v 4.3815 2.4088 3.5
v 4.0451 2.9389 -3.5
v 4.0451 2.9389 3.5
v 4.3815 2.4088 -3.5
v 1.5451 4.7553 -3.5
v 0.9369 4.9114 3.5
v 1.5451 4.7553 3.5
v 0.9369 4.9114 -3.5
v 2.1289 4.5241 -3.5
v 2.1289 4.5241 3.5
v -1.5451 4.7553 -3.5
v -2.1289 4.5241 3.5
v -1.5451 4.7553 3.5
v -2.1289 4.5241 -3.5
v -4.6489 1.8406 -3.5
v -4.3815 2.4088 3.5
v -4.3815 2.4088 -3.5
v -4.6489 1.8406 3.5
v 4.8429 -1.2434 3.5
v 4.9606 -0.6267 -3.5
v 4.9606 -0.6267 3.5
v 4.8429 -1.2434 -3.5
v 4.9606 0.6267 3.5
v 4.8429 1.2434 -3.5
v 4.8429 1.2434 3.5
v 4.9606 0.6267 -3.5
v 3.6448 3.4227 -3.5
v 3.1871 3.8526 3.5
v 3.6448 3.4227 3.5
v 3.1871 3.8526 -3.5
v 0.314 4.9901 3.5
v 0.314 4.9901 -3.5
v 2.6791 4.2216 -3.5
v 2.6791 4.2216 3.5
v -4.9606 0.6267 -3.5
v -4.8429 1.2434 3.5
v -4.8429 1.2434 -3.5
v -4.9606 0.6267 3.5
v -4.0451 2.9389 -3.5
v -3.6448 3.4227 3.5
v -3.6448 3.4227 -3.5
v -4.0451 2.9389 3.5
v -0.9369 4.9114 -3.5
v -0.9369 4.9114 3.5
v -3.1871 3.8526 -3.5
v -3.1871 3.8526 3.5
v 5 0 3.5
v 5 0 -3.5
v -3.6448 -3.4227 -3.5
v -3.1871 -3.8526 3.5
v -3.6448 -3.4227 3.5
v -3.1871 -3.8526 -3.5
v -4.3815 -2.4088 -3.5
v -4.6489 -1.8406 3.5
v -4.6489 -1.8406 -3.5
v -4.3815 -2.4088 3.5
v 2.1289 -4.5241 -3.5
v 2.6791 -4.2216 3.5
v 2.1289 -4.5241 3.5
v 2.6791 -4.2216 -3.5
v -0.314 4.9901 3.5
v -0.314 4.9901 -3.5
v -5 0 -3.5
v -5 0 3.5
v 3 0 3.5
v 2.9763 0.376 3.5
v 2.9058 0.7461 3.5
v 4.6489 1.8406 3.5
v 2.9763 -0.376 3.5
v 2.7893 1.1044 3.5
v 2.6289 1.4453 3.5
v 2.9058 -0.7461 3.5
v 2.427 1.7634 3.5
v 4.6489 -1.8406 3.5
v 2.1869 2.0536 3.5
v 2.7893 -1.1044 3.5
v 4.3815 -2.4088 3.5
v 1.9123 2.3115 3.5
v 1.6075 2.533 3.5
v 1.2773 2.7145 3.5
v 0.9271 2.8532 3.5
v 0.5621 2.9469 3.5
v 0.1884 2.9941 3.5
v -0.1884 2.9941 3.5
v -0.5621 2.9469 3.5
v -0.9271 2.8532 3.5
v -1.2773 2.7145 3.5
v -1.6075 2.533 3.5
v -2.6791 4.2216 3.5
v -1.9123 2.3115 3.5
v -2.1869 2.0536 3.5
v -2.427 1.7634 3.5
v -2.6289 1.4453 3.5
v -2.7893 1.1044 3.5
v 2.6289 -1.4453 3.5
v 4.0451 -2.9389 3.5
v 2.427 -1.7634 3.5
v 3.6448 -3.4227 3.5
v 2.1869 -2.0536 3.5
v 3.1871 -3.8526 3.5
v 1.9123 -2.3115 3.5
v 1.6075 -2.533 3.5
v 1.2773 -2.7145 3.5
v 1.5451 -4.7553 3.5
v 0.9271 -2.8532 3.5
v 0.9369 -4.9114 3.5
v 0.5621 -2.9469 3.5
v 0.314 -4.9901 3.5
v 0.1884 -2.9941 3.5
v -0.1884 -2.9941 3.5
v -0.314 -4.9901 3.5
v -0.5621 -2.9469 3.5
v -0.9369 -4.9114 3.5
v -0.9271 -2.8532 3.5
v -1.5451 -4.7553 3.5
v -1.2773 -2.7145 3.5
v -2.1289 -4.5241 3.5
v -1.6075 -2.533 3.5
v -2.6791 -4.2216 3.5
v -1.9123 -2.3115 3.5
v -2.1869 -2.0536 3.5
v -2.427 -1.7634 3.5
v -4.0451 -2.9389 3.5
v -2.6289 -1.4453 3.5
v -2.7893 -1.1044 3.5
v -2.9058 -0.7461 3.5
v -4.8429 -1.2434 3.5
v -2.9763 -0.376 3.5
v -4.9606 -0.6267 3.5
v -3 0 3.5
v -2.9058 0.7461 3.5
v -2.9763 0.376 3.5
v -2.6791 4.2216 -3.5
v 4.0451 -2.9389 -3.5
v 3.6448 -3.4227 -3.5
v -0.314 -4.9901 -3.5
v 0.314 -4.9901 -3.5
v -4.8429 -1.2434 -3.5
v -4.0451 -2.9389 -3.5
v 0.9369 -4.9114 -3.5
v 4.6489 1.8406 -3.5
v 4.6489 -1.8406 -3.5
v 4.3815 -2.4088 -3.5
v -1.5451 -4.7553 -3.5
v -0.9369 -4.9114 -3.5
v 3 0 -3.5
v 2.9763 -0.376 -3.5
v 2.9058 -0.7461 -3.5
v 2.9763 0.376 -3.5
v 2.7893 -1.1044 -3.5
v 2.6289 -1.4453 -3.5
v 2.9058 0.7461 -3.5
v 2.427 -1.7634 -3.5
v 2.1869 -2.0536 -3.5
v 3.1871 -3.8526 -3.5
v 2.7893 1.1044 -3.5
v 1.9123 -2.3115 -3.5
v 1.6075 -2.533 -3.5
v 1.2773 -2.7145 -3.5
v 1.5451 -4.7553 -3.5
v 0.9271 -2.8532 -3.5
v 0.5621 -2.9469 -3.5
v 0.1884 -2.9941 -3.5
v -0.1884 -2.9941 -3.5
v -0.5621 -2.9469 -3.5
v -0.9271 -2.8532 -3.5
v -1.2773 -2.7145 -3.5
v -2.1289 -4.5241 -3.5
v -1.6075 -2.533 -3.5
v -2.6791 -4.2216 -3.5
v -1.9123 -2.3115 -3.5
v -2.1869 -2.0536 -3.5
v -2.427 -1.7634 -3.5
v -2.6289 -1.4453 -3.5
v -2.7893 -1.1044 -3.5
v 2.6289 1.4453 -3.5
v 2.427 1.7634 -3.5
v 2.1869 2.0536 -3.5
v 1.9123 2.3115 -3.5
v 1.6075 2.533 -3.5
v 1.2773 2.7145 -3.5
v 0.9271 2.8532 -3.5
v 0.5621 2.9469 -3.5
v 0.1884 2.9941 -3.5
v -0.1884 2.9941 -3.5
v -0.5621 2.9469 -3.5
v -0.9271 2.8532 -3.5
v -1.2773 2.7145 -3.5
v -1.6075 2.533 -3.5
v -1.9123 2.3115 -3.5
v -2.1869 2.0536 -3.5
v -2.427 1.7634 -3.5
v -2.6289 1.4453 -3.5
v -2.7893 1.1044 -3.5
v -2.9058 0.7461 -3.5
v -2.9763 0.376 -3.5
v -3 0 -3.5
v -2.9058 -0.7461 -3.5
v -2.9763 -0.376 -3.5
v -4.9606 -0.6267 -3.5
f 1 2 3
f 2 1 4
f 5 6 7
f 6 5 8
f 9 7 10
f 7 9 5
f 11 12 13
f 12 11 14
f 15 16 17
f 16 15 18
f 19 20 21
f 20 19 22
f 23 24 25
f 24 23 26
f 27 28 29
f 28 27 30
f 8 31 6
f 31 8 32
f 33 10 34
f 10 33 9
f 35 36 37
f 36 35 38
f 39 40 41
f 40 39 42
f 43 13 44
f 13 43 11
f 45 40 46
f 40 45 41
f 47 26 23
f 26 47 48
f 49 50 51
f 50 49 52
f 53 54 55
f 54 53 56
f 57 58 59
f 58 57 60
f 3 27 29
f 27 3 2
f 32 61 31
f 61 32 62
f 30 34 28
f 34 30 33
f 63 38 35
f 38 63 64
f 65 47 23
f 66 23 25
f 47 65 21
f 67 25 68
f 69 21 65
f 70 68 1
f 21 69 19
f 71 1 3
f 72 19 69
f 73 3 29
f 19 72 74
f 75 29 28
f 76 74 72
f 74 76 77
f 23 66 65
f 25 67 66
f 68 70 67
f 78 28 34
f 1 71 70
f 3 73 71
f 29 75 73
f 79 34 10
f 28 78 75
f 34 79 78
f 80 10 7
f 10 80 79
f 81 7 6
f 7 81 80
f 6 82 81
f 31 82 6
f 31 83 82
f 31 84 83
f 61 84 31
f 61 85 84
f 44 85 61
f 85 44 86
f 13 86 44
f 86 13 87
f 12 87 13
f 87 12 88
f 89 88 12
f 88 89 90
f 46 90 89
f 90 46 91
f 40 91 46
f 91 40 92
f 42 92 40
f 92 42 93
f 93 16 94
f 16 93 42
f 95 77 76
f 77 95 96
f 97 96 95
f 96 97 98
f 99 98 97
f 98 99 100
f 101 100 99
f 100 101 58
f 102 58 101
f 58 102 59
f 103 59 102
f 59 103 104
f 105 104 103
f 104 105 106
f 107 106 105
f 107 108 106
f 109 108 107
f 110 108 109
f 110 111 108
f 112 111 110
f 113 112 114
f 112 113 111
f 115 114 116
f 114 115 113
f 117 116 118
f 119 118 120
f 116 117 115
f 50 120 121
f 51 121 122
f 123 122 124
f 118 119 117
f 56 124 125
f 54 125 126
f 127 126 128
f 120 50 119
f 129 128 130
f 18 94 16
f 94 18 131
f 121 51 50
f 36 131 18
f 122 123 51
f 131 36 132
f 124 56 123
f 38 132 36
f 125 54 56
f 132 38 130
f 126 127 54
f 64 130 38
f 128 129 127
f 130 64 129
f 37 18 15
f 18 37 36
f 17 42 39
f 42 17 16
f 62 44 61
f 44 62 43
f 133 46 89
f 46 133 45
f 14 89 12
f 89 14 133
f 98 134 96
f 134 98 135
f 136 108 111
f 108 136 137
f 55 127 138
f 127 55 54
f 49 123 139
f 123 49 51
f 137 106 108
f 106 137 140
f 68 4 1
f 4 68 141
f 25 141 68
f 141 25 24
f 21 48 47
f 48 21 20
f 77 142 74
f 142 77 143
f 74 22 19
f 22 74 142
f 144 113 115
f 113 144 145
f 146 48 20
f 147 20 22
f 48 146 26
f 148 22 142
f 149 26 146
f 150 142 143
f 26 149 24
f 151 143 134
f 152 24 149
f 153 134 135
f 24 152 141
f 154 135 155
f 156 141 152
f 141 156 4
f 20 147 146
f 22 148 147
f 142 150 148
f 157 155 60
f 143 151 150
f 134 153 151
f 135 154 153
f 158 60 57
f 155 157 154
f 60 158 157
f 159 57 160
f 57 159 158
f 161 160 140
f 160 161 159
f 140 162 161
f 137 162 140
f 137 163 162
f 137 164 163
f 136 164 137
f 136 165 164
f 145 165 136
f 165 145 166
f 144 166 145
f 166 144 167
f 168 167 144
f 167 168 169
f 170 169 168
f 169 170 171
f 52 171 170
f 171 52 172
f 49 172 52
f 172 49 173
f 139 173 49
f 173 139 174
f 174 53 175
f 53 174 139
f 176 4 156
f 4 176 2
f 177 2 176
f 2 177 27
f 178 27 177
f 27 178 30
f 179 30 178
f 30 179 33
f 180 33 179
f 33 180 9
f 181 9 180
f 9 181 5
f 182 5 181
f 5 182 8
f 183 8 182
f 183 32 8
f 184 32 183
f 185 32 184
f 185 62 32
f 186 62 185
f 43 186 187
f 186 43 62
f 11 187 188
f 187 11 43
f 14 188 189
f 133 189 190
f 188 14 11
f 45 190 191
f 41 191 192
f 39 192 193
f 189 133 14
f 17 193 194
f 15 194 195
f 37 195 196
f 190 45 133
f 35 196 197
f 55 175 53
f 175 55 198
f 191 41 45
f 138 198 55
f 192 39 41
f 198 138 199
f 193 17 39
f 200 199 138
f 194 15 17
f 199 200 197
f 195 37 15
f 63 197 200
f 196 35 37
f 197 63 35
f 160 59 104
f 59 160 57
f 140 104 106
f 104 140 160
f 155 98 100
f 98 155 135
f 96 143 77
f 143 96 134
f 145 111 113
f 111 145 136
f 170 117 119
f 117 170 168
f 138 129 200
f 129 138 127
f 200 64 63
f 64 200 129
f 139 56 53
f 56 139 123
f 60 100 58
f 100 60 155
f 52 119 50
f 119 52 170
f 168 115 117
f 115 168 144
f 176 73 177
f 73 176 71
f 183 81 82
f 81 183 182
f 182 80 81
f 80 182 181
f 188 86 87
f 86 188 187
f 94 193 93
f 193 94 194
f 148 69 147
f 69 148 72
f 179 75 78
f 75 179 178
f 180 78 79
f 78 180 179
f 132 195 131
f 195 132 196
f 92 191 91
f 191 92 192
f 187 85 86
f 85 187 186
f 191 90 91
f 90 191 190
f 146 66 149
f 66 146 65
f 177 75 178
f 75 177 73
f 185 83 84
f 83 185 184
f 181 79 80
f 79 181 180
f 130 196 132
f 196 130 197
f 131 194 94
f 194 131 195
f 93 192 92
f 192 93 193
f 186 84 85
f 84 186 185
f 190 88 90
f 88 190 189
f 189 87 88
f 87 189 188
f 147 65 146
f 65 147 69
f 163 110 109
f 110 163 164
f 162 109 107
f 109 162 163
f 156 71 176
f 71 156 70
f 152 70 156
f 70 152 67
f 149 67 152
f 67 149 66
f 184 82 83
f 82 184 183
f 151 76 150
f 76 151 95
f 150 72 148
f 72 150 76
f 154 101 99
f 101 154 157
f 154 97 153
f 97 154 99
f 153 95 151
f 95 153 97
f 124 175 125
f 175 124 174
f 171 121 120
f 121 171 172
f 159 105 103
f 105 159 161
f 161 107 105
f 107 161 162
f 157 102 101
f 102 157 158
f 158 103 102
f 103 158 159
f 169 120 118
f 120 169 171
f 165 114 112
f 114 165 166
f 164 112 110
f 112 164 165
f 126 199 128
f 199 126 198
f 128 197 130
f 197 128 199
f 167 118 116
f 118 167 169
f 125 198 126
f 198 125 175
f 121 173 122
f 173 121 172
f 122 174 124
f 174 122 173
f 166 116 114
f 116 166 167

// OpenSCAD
$fn = 50;


difference() {
	union() {
		translate(v = [0, 0, -3.5000000000]) {
			cylinder(h = 7, r = 5.0000000000);
		}
	}
	union() {
		translate(v = [0, 0, -100.0000000000]) {
			cylinder(h = 200, r = 3);
		}
	}
}
